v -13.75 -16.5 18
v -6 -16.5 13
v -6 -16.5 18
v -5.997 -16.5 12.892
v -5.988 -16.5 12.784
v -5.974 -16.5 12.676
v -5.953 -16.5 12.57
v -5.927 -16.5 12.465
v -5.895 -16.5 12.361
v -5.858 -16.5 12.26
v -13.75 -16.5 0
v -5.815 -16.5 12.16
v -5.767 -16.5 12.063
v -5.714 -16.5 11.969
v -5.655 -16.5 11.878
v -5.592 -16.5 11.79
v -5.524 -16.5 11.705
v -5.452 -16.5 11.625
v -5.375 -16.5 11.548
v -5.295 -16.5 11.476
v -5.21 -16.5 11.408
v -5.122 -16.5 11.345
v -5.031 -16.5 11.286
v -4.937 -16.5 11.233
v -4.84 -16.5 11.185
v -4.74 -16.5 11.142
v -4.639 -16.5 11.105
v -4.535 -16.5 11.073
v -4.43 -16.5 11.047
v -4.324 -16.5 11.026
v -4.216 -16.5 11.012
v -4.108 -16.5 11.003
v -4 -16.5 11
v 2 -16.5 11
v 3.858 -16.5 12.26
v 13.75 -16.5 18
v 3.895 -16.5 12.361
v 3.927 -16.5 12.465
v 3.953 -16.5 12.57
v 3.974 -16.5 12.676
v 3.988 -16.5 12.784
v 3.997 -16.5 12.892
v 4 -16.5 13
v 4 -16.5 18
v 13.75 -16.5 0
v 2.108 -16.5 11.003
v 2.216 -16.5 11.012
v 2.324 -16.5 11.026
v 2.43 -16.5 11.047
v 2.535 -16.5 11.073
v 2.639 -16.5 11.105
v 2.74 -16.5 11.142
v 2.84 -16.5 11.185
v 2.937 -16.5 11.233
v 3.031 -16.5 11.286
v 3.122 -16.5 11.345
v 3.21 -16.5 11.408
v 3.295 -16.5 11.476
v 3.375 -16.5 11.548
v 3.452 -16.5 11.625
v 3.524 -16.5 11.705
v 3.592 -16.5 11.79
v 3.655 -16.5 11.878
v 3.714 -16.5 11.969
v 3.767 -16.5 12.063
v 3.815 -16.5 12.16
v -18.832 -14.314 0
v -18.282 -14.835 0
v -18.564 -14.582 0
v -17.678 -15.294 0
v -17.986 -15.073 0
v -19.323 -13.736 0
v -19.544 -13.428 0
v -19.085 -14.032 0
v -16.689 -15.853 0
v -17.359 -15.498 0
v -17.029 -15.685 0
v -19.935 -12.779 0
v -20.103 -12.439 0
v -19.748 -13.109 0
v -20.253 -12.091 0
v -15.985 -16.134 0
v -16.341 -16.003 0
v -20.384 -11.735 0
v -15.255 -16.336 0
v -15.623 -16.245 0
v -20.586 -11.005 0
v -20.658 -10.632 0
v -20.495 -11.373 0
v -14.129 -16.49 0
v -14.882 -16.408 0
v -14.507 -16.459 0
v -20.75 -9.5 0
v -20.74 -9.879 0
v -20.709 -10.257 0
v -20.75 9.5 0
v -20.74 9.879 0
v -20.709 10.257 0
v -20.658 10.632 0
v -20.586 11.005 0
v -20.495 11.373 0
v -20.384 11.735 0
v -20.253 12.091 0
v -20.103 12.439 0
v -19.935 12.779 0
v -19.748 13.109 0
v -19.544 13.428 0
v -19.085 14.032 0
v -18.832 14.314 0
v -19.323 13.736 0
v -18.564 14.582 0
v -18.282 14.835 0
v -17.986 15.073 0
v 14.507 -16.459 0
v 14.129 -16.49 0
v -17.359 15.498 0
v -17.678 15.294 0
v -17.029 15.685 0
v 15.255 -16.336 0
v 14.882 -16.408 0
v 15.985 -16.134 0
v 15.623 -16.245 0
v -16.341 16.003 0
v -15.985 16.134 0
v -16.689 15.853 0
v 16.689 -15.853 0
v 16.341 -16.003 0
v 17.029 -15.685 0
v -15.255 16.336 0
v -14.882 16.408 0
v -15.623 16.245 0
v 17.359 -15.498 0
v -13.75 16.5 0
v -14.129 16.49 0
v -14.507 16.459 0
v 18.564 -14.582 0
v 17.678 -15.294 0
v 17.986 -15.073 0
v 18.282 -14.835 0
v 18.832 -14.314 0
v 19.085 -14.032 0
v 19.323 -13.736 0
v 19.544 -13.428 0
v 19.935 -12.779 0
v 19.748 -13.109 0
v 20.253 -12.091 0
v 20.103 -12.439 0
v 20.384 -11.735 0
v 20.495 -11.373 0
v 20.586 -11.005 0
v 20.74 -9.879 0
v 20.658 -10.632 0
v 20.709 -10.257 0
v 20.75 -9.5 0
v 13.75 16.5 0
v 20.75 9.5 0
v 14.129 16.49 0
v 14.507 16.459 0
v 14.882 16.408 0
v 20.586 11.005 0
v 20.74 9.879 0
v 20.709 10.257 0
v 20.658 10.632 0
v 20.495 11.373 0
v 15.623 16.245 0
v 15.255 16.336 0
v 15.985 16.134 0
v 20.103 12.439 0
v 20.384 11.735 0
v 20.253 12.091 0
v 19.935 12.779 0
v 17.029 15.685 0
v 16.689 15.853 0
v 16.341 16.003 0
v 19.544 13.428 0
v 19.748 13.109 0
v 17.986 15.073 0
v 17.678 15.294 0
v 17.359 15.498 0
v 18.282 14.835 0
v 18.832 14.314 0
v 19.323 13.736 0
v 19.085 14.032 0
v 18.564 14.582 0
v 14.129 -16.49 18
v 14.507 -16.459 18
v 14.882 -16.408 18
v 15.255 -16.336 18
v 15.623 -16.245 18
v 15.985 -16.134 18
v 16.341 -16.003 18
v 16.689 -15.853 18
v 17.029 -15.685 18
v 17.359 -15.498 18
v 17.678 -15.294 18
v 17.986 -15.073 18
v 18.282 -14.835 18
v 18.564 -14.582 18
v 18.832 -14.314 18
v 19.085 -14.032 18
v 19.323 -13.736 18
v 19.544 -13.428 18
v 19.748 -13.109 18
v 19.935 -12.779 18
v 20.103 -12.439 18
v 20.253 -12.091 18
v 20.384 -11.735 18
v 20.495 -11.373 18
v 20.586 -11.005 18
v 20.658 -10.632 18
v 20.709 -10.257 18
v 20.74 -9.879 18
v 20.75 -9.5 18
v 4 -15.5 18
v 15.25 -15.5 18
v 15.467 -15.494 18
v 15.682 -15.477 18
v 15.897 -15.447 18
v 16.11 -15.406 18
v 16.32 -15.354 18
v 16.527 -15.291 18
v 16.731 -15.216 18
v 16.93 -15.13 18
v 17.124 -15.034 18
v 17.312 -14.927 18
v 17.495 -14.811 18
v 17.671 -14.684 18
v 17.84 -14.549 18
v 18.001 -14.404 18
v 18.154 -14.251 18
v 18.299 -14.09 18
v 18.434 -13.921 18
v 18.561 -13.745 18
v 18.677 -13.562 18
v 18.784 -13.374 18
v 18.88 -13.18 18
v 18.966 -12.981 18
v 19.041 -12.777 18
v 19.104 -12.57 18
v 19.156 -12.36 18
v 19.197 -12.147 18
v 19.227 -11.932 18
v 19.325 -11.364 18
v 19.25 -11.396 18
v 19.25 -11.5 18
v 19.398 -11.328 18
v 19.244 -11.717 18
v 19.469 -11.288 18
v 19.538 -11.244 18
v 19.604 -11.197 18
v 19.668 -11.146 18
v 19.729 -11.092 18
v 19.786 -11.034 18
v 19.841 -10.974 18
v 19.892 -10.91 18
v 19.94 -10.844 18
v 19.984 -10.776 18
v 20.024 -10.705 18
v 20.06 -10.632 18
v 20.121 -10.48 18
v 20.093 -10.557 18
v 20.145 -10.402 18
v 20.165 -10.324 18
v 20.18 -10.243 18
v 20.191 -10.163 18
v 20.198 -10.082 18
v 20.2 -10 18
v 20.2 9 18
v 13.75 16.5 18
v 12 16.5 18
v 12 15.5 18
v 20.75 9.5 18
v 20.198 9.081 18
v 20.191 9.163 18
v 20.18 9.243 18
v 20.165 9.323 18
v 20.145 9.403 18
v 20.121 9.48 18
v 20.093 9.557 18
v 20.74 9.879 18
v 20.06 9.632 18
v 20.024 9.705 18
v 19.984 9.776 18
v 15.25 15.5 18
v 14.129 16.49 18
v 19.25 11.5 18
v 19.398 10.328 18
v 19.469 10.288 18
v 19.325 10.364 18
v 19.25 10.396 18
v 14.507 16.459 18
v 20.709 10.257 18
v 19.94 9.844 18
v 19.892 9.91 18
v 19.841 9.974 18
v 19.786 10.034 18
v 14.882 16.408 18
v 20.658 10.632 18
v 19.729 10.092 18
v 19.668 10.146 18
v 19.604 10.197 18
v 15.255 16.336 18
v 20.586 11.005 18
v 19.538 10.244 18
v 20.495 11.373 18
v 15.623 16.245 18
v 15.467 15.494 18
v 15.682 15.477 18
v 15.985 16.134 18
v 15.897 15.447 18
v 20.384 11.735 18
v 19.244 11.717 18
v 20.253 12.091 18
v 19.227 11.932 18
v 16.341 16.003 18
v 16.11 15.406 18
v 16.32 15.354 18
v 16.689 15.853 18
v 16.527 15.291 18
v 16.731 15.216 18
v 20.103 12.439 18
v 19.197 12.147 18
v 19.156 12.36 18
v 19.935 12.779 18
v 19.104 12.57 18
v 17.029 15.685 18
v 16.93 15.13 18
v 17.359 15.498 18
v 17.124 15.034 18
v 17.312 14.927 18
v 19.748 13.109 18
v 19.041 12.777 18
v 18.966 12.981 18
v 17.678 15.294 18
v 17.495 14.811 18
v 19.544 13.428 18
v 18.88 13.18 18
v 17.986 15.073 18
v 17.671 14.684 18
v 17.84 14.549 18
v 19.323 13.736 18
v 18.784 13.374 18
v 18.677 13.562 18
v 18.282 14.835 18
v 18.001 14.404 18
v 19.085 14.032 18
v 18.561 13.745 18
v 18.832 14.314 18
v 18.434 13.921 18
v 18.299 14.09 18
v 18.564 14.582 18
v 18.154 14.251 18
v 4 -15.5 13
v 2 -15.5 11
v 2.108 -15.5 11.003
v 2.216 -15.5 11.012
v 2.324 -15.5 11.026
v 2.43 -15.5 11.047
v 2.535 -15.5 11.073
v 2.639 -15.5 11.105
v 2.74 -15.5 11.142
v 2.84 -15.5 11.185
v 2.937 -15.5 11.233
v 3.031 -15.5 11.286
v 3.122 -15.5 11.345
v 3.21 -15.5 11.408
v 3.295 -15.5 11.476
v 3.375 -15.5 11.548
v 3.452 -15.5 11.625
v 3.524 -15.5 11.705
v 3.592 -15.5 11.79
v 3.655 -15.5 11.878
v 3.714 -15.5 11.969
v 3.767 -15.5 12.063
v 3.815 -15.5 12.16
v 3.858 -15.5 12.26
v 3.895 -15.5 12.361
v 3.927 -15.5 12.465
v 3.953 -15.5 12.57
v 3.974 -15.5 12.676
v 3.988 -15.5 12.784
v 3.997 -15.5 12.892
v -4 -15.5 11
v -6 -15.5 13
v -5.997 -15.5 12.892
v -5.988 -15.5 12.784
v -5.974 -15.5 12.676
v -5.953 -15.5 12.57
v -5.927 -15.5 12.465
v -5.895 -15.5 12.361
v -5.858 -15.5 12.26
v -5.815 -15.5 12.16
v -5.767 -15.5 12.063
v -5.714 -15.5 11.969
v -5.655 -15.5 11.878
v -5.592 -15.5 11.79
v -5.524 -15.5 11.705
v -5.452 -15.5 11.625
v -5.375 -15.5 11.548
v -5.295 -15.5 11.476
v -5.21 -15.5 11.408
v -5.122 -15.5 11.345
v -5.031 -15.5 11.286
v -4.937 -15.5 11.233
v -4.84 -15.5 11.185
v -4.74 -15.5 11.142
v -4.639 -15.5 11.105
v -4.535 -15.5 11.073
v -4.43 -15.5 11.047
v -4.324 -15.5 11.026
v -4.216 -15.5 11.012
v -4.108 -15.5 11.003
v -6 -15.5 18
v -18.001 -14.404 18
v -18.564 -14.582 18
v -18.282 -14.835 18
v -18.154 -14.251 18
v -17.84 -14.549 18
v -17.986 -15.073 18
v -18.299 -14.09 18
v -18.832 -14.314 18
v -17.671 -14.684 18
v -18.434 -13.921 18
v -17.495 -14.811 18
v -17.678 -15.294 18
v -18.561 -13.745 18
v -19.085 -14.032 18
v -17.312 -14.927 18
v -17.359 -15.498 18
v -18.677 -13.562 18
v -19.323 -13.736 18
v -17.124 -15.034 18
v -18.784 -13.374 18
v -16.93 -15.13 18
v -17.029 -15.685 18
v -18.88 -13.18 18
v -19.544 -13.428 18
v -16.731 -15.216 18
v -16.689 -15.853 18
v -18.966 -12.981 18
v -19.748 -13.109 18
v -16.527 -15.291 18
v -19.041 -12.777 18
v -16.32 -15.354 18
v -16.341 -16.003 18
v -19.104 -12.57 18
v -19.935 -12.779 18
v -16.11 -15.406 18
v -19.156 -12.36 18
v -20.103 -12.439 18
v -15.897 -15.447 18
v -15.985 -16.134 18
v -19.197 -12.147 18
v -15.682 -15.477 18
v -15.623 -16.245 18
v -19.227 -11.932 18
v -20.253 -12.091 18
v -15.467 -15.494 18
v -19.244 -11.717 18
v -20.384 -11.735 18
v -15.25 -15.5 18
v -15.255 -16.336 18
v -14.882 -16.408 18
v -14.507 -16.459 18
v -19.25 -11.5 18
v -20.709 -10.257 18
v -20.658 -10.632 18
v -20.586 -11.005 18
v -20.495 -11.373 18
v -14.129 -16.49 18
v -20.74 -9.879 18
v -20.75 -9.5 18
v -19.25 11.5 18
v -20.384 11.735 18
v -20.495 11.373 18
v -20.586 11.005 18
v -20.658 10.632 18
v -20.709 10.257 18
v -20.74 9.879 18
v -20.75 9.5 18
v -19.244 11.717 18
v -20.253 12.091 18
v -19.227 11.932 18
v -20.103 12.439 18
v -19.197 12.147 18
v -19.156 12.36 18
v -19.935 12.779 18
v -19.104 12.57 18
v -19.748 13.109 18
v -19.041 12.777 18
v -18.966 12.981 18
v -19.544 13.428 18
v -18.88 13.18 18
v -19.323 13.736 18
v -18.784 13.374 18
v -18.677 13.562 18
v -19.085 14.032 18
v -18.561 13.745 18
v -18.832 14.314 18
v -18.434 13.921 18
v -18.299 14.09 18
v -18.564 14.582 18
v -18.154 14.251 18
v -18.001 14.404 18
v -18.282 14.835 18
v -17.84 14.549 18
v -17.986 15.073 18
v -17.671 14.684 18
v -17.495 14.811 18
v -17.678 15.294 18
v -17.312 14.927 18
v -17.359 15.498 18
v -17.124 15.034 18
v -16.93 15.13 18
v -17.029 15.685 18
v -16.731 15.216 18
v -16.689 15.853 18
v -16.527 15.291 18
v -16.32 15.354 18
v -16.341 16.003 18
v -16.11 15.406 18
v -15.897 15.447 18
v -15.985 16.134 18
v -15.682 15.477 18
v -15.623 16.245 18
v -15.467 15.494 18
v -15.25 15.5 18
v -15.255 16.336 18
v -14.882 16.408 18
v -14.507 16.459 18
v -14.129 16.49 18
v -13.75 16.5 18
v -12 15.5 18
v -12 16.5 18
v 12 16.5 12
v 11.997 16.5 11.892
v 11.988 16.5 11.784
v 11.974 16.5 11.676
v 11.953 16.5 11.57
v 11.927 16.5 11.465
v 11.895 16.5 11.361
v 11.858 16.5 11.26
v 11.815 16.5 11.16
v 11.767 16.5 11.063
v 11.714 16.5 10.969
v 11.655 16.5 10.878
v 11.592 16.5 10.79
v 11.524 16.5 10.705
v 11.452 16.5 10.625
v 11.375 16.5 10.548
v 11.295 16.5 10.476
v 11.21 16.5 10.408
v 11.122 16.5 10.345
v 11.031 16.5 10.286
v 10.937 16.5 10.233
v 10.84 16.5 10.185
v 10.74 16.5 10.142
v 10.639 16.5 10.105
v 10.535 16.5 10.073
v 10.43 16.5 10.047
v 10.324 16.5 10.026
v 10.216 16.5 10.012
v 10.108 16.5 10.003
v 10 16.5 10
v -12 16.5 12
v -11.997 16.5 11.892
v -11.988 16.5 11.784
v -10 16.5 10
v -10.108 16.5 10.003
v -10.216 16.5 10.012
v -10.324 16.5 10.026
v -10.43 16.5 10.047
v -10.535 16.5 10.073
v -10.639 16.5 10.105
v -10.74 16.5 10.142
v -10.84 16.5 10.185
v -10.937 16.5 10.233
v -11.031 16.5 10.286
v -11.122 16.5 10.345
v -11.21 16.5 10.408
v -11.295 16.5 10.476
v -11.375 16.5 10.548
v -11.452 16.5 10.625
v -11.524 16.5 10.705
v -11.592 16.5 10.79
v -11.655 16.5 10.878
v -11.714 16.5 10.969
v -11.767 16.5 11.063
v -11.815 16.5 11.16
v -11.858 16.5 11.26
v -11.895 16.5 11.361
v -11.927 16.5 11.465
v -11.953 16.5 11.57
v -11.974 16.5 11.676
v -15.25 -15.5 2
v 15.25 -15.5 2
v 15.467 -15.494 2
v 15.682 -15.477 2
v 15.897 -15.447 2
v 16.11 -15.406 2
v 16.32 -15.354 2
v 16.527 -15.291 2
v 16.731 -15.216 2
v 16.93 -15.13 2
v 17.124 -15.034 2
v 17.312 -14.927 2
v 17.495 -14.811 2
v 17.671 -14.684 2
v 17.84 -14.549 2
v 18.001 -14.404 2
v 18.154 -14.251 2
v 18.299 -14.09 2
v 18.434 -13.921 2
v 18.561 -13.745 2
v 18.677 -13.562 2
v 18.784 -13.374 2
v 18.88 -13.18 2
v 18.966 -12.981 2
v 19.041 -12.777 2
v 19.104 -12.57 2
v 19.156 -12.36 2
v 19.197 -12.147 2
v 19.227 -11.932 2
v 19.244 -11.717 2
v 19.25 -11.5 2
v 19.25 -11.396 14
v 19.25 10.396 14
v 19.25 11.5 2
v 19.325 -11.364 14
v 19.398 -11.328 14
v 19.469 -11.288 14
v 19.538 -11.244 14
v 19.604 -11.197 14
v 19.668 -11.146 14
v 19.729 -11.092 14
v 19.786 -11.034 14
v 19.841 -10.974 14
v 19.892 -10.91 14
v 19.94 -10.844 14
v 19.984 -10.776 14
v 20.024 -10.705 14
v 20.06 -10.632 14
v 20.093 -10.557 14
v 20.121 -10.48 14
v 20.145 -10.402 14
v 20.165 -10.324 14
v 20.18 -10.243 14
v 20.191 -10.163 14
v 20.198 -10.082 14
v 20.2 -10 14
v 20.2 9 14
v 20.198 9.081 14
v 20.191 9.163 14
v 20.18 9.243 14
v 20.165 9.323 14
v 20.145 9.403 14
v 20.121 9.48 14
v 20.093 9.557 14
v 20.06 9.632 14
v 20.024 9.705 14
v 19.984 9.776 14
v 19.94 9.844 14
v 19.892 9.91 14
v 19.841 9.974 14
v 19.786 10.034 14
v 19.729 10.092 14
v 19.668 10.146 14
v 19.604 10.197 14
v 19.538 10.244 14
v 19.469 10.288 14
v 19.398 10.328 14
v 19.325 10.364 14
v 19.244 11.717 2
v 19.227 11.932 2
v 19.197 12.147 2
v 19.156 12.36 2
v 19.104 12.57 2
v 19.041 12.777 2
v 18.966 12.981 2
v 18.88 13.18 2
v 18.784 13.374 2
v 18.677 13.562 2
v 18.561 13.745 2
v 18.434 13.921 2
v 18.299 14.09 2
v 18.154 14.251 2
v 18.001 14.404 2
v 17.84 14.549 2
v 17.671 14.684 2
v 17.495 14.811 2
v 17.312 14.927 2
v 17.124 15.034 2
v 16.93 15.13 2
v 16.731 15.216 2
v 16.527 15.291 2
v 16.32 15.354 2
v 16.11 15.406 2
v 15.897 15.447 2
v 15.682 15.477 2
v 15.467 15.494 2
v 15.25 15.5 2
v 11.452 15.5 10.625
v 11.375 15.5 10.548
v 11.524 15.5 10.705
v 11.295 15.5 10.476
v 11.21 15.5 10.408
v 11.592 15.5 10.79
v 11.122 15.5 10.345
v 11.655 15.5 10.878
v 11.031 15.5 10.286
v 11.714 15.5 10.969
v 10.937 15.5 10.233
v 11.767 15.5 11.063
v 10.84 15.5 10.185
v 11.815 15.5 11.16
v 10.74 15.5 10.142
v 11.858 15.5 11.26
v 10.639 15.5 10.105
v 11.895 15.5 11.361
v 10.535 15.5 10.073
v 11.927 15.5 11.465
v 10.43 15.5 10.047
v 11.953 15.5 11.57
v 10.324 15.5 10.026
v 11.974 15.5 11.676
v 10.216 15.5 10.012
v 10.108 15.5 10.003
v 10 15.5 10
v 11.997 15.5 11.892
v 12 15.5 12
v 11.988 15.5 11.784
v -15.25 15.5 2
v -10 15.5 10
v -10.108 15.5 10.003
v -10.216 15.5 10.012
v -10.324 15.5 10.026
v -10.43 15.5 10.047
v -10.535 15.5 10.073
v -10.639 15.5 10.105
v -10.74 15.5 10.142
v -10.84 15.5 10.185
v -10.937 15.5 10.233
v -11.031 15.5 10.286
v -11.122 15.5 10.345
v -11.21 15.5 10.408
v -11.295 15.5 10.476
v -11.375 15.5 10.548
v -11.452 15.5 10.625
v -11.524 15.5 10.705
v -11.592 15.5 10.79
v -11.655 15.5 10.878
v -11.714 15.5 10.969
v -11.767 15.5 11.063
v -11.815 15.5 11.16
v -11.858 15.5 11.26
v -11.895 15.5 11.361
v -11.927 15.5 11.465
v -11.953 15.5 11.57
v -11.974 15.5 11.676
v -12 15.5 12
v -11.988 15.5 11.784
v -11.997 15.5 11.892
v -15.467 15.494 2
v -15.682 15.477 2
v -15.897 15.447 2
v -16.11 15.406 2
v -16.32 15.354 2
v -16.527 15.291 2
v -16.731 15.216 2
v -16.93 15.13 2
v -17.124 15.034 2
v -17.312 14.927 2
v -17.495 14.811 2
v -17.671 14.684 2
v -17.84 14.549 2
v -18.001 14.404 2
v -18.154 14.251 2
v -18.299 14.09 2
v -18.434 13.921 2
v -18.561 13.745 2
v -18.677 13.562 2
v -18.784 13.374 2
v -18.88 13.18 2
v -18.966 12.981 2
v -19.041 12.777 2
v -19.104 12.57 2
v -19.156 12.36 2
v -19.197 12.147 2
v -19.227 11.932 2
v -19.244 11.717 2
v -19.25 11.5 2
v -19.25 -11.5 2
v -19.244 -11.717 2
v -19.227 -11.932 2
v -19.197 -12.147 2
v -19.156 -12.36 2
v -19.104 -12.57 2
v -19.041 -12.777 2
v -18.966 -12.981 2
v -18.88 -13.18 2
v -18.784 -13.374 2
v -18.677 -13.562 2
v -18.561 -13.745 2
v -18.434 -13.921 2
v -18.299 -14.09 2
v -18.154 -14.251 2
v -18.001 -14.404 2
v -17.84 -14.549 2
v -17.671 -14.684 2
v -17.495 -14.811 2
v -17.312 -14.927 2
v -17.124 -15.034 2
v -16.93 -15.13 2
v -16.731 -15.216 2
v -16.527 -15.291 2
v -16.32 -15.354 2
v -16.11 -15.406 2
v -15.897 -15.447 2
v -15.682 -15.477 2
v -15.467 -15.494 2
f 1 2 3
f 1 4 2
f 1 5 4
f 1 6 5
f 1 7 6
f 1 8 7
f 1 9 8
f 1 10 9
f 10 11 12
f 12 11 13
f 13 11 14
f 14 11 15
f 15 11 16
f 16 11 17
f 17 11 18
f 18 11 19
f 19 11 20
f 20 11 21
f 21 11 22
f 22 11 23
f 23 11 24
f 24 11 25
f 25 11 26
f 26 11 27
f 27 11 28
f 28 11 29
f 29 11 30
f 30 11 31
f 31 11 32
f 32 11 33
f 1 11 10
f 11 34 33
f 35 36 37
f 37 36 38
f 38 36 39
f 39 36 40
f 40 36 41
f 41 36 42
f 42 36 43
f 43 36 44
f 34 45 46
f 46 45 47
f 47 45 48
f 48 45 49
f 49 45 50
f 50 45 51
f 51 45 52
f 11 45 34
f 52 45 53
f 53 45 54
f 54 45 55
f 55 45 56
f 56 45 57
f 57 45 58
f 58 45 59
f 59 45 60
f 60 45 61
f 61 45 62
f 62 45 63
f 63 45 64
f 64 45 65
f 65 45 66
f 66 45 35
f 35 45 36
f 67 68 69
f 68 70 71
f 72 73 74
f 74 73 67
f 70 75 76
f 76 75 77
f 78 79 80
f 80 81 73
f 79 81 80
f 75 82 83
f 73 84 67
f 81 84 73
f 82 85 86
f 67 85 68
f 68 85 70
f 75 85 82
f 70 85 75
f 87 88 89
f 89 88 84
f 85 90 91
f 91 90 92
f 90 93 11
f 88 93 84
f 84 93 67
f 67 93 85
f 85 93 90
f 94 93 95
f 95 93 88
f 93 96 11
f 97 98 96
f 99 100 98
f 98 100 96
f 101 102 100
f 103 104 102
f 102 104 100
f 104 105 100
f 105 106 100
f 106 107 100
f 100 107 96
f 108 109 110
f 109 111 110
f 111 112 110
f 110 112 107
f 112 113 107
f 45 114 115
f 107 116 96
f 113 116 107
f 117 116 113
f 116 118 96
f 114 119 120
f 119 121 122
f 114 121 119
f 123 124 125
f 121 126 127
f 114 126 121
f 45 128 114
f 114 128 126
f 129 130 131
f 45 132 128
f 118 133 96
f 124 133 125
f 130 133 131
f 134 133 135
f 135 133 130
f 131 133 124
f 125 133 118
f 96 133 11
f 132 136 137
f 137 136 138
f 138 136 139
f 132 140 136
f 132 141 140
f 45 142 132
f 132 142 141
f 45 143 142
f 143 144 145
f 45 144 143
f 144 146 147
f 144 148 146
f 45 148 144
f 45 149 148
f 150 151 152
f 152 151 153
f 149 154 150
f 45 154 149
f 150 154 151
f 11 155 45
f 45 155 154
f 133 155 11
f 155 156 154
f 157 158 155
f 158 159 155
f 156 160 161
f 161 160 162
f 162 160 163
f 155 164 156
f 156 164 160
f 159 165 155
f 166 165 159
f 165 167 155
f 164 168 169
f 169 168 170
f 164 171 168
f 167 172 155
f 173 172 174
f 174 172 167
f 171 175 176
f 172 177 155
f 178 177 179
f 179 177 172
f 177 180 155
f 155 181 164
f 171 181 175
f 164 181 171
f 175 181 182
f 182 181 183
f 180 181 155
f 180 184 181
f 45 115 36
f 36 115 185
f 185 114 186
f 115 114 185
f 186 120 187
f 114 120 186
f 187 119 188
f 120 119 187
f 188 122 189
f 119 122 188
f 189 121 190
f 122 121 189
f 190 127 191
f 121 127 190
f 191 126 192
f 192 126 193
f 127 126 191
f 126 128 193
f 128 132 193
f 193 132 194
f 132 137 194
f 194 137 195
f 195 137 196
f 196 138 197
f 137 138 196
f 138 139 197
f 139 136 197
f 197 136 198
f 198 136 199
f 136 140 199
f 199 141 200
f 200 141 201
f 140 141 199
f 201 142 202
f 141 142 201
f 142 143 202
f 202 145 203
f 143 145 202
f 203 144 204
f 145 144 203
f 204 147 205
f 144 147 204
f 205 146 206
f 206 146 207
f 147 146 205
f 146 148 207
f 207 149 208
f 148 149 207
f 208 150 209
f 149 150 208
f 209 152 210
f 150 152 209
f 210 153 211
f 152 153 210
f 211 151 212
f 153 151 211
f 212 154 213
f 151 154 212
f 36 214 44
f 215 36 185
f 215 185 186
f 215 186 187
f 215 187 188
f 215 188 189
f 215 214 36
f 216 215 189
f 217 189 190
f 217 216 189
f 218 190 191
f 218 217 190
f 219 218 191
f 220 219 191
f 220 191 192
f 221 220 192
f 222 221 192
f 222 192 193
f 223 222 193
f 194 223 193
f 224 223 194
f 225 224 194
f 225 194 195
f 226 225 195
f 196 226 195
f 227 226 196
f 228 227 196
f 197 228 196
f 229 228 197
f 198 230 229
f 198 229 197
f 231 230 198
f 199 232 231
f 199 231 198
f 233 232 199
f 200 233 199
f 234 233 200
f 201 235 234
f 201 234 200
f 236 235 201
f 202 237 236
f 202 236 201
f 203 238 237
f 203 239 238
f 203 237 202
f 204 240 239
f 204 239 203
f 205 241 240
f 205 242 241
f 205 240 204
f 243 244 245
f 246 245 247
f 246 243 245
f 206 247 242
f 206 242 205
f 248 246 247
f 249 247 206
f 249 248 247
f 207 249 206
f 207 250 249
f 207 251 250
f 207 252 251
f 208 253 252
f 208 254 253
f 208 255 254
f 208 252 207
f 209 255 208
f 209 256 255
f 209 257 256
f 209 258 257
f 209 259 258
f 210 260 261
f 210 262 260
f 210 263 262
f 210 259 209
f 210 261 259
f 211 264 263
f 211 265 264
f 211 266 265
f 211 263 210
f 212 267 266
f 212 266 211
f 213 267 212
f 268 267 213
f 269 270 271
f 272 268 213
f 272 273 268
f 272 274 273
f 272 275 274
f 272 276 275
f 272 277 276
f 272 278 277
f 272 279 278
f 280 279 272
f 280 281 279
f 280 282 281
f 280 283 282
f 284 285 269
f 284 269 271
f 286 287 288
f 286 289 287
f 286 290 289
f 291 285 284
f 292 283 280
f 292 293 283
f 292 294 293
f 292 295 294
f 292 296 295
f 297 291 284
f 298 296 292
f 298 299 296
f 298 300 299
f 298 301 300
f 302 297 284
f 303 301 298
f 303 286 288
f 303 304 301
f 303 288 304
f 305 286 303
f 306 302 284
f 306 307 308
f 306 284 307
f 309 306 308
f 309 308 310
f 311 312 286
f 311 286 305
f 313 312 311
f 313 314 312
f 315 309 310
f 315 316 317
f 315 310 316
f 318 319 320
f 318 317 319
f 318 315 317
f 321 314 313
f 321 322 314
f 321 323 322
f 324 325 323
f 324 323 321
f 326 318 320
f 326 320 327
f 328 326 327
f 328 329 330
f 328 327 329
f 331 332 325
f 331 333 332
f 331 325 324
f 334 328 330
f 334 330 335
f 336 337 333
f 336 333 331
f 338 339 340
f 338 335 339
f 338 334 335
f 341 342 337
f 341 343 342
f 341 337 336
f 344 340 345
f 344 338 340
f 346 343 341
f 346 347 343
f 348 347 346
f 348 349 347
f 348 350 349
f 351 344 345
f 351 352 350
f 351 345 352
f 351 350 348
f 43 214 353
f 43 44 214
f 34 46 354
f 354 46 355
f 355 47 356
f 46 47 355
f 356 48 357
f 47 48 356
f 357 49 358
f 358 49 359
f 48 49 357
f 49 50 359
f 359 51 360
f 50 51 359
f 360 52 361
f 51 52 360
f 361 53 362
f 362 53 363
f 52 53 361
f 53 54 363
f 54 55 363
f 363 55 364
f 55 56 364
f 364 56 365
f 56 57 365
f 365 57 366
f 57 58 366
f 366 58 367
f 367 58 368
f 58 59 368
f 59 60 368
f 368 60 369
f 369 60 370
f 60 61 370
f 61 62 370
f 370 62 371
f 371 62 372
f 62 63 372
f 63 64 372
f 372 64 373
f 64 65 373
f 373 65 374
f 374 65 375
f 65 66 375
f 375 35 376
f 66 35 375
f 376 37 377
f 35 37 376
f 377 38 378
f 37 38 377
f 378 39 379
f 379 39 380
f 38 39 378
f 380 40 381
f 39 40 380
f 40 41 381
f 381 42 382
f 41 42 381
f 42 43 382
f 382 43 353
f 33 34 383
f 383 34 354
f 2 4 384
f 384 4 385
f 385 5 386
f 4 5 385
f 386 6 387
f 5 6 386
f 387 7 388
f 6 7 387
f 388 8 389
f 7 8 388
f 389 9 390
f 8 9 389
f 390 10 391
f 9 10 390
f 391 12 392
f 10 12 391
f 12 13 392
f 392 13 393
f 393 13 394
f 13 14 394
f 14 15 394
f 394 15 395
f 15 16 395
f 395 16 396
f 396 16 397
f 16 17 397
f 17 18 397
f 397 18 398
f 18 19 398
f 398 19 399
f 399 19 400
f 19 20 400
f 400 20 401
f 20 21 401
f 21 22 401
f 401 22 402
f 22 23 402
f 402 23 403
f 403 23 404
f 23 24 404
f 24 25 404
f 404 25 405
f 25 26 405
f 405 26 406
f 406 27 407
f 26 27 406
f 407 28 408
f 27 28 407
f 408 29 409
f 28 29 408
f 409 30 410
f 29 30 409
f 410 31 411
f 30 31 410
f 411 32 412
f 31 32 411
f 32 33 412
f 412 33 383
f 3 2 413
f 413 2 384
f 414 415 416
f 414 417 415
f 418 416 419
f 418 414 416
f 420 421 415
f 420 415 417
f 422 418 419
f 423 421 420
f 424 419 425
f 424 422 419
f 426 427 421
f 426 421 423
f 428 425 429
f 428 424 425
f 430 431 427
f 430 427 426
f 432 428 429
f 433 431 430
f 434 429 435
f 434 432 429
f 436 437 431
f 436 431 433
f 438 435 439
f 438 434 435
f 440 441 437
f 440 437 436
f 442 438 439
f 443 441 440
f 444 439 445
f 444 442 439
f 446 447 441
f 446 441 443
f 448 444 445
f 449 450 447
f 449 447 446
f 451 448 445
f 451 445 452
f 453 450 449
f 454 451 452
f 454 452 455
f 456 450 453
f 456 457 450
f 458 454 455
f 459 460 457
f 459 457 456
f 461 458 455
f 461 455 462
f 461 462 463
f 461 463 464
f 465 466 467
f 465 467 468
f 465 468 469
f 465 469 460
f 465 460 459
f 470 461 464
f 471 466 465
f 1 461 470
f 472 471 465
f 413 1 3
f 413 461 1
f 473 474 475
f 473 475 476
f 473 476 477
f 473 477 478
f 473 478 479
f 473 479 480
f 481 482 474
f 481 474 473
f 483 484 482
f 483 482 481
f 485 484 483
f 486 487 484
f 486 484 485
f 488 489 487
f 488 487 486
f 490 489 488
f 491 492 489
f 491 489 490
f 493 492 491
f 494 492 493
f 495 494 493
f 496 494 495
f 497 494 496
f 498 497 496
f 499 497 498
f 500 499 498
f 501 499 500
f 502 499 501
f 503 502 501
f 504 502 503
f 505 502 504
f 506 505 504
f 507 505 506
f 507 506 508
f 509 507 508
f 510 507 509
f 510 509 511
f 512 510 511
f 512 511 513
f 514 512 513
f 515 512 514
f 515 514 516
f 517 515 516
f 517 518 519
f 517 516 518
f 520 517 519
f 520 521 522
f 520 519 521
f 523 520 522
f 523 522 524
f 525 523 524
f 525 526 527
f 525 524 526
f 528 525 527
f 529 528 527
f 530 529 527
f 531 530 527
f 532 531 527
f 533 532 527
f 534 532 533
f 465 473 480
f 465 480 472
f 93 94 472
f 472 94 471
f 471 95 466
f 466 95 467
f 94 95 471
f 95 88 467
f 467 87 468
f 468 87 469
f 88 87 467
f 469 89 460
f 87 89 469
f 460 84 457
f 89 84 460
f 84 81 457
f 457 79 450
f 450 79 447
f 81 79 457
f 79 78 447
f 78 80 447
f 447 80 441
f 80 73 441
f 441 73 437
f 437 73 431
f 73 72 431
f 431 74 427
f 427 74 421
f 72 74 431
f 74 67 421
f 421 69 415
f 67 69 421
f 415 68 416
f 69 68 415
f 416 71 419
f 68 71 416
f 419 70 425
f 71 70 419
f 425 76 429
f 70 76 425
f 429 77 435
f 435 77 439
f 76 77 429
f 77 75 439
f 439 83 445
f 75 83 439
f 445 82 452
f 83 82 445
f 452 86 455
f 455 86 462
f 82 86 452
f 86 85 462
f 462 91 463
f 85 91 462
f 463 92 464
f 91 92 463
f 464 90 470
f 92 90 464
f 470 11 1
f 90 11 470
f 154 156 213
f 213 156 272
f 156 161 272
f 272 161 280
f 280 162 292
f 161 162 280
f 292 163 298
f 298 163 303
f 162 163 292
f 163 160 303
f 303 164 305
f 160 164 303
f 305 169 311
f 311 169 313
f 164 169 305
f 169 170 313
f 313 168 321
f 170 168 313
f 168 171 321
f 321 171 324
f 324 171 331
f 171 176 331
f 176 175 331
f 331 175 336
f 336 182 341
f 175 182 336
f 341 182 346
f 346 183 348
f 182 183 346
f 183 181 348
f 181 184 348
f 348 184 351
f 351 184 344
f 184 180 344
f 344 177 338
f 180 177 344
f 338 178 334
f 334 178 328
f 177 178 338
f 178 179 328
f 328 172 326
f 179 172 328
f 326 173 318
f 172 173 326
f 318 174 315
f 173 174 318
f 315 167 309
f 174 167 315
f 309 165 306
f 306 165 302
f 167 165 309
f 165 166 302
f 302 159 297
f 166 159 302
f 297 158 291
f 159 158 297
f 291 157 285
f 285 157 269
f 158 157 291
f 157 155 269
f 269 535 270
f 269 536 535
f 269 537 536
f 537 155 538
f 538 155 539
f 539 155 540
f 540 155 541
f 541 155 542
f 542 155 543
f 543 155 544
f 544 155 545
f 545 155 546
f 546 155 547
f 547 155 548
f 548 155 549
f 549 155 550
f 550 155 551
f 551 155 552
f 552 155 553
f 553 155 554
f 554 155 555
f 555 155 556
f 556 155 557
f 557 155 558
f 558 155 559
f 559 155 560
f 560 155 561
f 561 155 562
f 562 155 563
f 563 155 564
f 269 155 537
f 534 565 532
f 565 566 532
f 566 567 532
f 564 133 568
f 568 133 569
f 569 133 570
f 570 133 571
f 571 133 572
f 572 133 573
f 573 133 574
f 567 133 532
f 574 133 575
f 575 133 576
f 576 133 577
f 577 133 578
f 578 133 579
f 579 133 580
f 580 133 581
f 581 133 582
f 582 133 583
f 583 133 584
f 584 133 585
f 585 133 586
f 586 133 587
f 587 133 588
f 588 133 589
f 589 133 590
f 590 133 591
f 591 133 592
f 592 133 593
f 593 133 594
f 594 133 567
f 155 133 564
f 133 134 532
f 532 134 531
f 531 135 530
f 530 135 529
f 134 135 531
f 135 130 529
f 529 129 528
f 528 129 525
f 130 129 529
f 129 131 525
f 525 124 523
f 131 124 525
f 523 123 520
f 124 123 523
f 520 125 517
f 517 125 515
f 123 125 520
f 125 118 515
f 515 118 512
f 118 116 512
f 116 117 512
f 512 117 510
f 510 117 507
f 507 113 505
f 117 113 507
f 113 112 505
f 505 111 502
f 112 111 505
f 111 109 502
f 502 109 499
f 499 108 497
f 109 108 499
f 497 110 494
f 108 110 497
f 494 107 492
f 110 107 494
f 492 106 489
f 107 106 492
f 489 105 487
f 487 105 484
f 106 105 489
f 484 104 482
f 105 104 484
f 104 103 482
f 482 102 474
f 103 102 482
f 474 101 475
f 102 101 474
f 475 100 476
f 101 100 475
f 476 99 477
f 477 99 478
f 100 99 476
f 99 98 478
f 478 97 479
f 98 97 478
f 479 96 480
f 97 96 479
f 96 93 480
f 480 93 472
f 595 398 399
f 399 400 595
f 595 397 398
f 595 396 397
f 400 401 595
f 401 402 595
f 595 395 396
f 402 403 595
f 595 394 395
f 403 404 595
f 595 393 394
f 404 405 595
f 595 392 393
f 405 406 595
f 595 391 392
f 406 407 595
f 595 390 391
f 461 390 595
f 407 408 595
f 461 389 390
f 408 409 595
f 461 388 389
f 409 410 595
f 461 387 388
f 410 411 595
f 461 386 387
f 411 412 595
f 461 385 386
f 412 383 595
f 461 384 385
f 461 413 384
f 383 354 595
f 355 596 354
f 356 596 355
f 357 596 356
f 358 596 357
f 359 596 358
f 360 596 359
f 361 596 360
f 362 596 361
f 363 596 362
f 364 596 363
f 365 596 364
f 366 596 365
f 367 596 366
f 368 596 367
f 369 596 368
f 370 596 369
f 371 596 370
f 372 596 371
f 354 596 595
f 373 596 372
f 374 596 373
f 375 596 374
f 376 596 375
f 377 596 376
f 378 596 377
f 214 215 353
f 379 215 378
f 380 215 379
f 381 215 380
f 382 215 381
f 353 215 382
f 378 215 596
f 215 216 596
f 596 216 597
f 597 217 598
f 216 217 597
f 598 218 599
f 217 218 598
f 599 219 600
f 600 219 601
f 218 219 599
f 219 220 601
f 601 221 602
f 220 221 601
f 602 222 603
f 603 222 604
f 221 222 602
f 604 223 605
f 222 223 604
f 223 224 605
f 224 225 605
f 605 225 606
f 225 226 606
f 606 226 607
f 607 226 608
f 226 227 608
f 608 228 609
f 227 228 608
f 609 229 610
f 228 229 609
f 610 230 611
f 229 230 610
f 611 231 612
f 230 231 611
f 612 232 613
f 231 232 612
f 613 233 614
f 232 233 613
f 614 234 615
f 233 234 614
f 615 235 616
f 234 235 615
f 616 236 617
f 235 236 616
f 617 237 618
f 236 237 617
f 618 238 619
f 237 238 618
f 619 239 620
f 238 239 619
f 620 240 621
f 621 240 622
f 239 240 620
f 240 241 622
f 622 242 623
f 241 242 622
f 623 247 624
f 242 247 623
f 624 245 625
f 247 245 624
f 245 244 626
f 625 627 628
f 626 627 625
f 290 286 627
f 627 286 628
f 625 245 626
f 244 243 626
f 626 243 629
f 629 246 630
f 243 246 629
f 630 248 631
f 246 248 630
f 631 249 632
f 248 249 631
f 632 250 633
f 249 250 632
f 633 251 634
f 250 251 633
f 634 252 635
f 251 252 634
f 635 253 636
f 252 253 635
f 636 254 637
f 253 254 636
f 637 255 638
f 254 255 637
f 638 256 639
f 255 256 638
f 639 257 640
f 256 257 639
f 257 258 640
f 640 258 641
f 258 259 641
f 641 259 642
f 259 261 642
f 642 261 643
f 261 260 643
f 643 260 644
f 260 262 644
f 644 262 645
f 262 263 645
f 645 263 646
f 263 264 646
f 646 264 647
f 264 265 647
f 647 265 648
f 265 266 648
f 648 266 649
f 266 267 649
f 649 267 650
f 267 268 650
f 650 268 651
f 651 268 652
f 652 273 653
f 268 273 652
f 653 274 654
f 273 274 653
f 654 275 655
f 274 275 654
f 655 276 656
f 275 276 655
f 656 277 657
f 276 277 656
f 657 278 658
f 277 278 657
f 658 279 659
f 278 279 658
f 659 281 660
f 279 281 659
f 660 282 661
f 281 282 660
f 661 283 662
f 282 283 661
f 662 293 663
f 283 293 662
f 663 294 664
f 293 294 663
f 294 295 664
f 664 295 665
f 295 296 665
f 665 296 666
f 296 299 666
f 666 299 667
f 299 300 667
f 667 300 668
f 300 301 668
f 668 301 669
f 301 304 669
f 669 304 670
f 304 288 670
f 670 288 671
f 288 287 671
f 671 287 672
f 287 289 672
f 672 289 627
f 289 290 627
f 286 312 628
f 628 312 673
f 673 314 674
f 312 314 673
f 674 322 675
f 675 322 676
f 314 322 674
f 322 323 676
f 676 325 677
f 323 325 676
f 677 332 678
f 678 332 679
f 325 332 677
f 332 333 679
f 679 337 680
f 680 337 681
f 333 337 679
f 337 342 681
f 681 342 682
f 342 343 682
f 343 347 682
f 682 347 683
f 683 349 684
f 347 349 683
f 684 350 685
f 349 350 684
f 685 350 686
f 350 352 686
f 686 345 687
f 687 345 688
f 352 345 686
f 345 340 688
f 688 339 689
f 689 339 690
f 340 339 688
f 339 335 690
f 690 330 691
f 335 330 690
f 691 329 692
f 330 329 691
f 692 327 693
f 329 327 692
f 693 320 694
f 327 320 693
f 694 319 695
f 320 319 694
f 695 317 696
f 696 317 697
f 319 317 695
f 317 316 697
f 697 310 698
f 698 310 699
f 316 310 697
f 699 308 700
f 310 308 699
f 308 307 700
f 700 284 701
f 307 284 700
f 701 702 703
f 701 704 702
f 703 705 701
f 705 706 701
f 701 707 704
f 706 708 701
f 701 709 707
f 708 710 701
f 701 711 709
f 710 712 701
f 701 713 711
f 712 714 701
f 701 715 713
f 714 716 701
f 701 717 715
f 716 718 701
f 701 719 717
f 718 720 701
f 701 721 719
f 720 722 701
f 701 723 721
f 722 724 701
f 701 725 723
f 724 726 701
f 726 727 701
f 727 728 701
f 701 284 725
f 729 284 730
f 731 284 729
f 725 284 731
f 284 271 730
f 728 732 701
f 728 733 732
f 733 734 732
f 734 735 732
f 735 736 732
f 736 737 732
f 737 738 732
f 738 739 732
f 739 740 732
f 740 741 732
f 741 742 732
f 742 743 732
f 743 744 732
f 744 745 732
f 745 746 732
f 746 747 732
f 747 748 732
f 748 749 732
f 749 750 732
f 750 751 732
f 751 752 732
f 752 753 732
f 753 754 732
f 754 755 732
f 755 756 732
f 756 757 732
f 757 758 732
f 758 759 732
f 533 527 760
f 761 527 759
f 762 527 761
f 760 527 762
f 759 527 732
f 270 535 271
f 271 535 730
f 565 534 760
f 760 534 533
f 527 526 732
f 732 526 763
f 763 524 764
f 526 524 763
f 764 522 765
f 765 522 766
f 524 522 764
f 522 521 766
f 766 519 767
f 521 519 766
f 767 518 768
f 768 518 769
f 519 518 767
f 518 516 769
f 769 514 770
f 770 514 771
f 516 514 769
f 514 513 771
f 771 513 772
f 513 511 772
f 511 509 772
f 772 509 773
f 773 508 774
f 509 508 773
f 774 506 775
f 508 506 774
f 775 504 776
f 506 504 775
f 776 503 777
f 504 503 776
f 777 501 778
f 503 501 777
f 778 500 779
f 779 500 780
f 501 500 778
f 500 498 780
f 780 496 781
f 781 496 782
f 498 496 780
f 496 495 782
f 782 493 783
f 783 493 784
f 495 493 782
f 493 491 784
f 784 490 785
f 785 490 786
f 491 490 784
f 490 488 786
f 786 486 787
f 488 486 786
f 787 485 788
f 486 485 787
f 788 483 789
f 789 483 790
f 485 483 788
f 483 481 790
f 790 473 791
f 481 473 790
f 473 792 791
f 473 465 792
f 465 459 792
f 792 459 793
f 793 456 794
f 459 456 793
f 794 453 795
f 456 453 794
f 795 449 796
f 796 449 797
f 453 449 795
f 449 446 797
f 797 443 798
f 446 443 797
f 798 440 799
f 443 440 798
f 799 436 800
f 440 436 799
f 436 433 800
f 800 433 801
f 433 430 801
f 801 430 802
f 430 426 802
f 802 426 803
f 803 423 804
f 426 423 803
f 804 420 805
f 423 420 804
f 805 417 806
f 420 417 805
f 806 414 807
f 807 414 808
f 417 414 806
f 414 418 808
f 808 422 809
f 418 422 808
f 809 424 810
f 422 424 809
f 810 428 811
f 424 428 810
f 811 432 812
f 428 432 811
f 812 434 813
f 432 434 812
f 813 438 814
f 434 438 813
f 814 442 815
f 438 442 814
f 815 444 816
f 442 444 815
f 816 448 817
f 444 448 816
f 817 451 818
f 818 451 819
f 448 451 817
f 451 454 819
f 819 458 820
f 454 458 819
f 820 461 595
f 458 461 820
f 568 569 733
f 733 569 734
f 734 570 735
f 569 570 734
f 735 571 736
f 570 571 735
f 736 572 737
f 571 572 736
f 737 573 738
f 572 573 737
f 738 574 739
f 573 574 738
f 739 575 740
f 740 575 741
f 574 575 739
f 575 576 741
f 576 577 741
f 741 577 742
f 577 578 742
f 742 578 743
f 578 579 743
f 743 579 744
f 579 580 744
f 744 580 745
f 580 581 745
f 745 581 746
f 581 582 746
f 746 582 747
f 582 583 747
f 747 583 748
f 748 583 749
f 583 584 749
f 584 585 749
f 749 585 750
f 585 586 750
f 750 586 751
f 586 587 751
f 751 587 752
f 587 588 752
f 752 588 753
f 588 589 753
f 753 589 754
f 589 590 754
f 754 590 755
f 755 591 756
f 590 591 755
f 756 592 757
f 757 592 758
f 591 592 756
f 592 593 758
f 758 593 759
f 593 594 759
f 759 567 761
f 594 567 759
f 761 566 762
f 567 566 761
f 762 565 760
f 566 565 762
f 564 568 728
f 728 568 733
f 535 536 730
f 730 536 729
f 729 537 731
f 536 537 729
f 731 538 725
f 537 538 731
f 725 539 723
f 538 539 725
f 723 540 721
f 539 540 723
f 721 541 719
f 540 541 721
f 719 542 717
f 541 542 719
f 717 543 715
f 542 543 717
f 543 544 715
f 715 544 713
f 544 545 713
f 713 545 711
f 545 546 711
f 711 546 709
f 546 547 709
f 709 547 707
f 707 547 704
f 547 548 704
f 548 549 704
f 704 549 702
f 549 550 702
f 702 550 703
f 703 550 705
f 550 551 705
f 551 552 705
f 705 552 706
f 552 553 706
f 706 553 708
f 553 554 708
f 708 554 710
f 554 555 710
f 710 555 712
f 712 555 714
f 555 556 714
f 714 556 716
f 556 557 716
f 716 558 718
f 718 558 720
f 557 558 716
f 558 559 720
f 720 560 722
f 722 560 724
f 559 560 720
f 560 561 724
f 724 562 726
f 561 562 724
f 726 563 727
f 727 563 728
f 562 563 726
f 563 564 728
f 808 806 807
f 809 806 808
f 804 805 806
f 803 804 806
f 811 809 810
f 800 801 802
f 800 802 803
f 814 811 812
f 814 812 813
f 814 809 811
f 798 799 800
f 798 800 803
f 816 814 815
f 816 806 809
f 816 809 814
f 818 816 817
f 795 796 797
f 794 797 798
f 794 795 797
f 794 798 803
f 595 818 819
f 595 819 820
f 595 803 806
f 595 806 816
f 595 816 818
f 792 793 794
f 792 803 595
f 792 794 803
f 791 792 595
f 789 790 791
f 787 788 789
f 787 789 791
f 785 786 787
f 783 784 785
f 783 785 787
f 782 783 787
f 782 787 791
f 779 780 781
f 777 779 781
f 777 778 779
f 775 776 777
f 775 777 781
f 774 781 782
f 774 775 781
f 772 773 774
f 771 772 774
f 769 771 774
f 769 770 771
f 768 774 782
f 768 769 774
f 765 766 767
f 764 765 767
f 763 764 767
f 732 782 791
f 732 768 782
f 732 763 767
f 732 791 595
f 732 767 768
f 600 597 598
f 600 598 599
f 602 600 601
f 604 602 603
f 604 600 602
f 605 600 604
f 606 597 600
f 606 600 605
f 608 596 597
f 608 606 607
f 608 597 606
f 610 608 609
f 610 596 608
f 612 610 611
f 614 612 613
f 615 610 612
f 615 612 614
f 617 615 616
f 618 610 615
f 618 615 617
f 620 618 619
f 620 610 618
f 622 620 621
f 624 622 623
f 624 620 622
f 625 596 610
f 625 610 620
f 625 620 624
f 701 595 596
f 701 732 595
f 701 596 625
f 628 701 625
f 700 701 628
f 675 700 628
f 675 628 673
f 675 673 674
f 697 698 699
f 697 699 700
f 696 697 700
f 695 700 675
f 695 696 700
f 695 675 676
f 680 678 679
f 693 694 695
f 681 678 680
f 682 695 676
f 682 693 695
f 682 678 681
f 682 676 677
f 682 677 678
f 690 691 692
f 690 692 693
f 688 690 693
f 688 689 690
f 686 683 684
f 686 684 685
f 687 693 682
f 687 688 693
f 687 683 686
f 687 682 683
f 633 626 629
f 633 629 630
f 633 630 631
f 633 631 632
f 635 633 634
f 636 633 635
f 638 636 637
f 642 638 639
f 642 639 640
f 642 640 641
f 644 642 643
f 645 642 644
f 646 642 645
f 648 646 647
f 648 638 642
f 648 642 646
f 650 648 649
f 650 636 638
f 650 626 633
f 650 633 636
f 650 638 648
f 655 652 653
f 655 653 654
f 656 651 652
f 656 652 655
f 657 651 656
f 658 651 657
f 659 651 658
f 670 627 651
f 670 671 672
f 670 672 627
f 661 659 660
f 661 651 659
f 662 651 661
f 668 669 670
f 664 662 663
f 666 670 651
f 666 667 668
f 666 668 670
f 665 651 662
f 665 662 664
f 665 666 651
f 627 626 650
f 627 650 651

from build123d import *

# Parameters (mm, degrees)
PAD_DEPTH       = 18
POCKET_DEPTH    = 16
POCKET001_DEPTH = 5
POCKET002_DEPTH = 5
POCKET003_DEPTH = 4


with BuildPart() as part:
    # Sketch → Pad (new body)
    with BuildSketch(Plane.XY):
        with BuildLine():
            Line((-13.75, -16.5), (13.75, -16.5))
            ThreePointArc((13.75, -16.5), (18.699747, -14.449747), (20.75, -9.5))
            Line((20.75, -9.5), (20.75, 9.5))
            ThreePointArc((20.75, 9.5), (18.699747, 14.449747), (13.75, 16.5))
            Line((13.75, 16.5), (-13.75, 16.5))
            ThreePointArc((-13.75, 16.5), (-18.699747, 14.449747), (-20.75, 9.5))
            Line((-20.75, 9.5), (-20.75, -9.5))
            ThreePointArc((-20.75, -9.5), (-18.699747, -14.449747), (-13.75, -16.5))
        make_face()
    extrude(amount=PAD_DEPTH)

    # Sketch001 (on Face10 of Pad) → Pocket (cut)
    with BuildSketch(Plane.XY.offset(18)):
        with BuildLine():
            Line((-19.25, 11.5), (-19.25, -11.5))
            ThreePointArc((-19.25, -11.5), (-18.078427, -14.328427), (-15.25, -15.5))
            Line((-15.25, -15.5), (15.25, -15.5))
            ThreePointArc((15.25, -15.5), (18.078427, -14.328427), (19.25, -11.5))
            Line((19.25, -11.5), (19.25, 11.5))
            ThreePointArc((19.25, 11.5), (18.078427, 14.328427), (15.25, 15.5))
            Line((15.25, 15.5), (-15.25, 15.5))
            ThreePointArc((-15.25, 15.5), (-18.078427, 14.328427), (-19.25, 11.5))
        make_face()
    extrude(amount=-POCKET_DEPTH, mode=Mode.SUBTRACT)

    # Sketch002 (on Face1 of Pocket) → Pocket001 (cut)
    with BuildSketch(Plane.XZ.offset(16.5)):
        with BuildLine():
            Line((-6, 18), (-6, 13))
            ThreePointArc((-6, 13), (-5.414214, 11.585786), (-4, 11))
            Line((-4, 11), (2, 11))
            ThreePointArc((2, 11), (3.414214, 11.585786), (4, 13))
            Line((4, 13), (4, 18))
            ThreePointArc((4, 18), (3.414214, 19.414214), (2, 20))
            Line((2, 20), (-4, 20))
            ThreePointArc((-4, 20), (-5.414214, 19.414214), (-6, 18))
        make_face()
    extrude(amount=-POCKET001_DEPTH, mode=Mode.SUBTRACT)

    # Sketch003 (on Face13 of Pocket001) → Pocket002 (cut)
    with BuildSketch(Plane(origin=(0, 16.5, 0), x_dir=(-1, 0, 0), z_dir=(0, 1, 0))):
        with BuildLine():
            Line((-12, 18), (-12, 12))
            ThreePointArc((-12, 12), (-11.414214, 10.585786), (-10, 10))
            Line((-10, 10), (10, 10))
            ThreePointArc((10, 10), (11.414214, 10.585786), (12, 12))
            Line((12, 12), (12, 18))
            ThreePointArc((12, 18), (11.414214, 19.414214), (10, 20))
            Line((10, 20), (-10, 20))
            ThreePointArc((-10, 20), (-11.414214, 19.414214), (-12, 18))
        make_face()
    extrude(amount=-POCKET002_DEPTH, mode=Mode.SUBTRACT)

    # Sketch004 (on Face4 of Pocket002) → Pocket003 (cut)
    with BuildSketch(Plane.XY.offset(18)):
        with BuildLine():
            Line((15.2, 9), (15.2, -10))
            ThreePointArc((15.2, -10), (15.63934, -11.06066), (16.7, -11.5))
            Line((16.7, -11.5), (18.7, -11.5))
            ThreePointArc((18.7, -11.5), (19.76066, -11.06066), (20.2, -10))
            Line((20.2, -10), (20.2, 9))
            ThreePointArc((20.2, 9), (19.76066, 10.06066), (18.7, 10.5))
            Line((18.7, 10.5), (16.7, 10.5))
            ThreePointArc((16.7, 10.5), (15.63934, 10.06066), (15.2, 9))
        make_face()
    extrude(amount=-POCKET003_DEPTH, mode=Mode.SUBTRACT)


solid = part.part
